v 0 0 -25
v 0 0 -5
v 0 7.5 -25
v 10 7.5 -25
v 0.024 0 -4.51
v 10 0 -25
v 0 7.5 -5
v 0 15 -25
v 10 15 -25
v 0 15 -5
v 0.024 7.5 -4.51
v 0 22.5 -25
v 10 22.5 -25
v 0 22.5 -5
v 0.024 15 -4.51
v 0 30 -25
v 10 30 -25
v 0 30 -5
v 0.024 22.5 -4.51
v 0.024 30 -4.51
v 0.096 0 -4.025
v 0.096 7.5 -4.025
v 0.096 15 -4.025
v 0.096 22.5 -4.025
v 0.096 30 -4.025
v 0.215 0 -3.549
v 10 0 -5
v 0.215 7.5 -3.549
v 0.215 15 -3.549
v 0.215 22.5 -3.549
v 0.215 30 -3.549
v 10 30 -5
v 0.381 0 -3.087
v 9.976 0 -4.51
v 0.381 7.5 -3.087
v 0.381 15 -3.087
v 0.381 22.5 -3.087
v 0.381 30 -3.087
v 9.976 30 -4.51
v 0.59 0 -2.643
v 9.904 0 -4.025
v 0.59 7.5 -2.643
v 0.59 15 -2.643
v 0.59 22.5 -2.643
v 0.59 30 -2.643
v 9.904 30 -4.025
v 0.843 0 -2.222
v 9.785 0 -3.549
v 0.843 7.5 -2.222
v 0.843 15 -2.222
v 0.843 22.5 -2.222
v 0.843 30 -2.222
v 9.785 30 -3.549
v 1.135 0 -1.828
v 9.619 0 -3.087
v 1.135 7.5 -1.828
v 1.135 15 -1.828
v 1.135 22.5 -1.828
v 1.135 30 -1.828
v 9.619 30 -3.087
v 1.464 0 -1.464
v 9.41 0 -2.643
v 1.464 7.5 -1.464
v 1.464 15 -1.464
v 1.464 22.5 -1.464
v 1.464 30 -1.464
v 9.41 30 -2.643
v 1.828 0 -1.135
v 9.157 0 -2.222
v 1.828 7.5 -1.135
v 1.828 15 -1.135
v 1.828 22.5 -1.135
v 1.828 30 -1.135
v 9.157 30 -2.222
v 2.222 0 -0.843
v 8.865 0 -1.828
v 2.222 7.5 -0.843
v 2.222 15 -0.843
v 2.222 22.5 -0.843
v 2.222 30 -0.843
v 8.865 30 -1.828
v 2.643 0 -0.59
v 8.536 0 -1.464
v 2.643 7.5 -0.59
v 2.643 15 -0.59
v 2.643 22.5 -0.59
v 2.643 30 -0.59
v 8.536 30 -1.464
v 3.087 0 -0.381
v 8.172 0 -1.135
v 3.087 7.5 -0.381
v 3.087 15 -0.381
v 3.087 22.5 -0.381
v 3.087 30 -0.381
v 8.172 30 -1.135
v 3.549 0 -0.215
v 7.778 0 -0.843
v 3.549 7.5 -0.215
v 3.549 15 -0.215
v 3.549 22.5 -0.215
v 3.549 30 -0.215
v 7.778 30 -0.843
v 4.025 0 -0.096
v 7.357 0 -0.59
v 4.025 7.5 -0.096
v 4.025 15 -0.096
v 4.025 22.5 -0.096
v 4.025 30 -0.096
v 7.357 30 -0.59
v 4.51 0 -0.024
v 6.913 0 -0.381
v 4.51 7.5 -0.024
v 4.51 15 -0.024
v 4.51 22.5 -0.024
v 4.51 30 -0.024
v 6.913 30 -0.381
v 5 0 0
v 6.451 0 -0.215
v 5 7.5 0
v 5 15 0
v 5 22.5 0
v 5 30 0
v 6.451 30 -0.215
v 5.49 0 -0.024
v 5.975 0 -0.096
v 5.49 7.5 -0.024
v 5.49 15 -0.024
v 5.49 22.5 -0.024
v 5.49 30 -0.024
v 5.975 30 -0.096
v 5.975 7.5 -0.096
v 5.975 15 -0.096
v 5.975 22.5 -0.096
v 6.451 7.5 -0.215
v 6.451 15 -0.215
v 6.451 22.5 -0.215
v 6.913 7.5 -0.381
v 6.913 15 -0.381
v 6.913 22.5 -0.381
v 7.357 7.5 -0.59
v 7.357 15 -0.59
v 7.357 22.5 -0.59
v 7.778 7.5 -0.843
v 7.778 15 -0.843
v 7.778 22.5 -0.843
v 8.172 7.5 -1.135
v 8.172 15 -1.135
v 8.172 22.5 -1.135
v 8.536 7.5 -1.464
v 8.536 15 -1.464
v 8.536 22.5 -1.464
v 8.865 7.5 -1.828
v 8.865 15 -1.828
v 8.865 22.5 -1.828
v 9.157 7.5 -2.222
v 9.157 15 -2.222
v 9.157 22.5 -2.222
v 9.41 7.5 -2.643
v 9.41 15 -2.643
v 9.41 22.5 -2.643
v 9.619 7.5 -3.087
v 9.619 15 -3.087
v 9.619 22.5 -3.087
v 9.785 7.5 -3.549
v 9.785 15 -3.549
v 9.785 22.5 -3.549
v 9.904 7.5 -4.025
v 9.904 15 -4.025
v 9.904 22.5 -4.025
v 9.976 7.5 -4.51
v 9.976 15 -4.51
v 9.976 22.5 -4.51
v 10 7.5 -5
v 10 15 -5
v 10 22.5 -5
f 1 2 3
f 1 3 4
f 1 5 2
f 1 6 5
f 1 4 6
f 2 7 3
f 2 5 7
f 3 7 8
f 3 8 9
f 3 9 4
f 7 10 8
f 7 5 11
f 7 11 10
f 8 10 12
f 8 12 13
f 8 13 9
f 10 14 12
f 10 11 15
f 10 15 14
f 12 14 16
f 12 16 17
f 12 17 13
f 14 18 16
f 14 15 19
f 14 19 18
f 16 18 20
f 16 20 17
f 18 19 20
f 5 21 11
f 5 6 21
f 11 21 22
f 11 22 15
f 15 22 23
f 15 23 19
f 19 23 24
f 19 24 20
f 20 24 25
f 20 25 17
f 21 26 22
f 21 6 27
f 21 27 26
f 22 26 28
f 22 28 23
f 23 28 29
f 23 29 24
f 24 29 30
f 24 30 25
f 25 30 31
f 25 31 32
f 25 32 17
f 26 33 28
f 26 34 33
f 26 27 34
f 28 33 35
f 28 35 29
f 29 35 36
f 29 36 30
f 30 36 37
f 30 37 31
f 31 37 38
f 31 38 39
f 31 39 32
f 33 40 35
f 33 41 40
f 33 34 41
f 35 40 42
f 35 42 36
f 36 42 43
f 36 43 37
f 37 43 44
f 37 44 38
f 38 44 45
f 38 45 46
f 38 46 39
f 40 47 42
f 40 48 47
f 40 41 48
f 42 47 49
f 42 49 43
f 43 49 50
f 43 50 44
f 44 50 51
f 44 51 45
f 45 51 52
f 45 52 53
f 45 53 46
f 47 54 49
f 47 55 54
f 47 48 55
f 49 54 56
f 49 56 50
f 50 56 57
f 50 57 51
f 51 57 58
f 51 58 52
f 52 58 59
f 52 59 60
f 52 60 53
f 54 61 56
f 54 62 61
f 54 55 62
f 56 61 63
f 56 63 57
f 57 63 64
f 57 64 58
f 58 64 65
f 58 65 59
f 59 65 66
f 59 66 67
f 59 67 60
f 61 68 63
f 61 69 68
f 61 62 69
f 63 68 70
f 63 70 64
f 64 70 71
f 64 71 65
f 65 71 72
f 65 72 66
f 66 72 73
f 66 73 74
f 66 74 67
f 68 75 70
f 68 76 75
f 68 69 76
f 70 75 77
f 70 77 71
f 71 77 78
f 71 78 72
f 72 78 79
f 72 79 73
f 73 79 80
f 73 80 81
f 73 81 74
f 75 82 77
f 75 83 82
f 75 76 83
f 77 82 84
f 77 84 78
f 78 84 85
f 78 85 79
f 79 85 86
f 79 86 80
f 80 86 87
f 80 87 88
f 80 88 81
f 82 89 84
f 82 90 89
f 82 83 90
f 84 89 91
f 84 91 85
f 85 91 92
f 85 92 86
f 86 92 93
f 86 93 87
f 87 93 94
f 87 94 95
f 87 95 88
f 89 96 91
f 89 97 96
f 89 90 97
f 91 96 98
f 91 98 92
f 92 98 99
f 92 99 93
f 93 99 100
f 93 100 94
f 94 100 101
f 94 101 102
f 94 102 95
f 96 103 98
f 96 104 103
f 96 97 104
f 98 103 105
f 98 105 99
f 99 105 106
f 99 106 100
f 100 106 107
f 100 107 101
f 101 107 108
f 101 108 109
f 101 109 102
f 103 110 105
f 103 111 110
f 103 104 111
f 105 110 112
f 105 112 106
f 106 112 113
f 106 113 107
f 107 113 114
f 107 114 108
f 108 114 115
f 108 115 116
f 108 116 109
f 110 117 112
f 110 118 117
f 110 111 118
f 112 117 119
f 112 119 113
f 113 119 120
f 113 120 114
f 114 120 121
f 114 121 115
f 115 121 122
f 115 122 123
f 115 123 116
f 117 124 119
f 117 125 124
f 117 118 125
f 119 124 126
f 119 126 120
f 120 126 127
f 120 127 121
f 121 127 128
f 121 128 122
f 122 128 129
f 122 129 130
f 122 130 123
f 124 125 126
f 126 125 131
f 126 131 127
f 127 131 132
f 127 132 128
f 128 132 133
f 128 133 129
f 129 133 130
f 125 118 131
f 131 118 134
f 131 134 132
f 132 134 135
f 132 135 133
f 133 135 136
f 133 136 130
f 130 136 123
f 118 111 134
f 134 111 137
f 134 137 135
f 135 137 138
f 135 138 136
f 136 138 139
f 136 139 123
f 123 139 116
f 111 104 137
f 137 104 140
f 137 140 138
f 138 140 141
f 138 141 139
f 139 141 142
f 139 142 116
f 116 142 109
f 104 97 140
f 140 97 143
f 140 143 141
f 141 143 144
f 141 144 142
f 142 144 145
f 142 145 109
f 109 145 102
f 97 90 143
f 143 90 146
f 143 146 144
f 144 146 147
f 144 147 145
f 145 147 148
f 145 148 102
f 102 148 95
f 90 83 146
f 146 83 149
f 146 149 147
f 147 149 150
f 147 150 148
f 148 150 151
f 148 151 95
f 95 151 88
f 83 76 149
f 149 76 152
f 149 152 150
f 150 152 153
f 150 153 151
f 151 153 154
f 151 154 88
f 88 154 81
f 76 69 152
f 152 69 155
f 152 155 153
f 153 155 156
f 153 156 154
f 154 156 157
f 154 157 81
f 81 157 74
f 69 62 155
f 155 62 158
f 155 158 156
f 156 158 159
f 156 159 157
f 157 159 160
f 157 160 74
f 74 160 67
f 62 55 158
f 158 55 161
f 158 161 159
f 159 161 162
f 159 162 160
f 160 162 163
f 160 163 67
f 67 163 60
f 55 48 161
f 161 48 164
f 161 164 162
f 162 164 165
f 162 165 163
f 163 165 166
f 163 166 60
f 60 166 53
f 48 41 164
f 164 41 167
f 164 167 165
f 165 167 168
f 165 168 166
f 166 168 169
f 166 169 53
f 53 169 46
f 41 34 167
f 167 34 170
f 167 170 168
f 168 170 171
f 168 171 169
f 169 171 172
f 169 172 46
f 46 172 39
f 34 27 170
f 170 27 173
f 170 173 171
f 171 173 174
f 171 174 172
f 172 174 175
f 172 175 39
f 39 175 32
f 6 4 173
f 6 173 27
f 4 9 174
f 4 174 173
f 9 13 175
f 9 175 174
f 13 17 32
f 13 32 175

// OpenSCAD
// Start: lazy_union
default_5_default_5();
// End: lazy_union

// Modules.

// 'PartMaterial undef-default - default 5.0'
module default_5_default_5() {
  // 'None : _combine_solids_and_holes'
  union() {
    // 'default : _combine_solids_and_holes'
    union() {
      // 'cage'
      %multmatrix(m=[[1.0, 0.0, 0.0, 0.0], [0.0, 0.0, 1.0, 0.0], [-0.0, -1.0, -0.0, -0.0], [0.0, 0.0, 0.0, 1.0]]) {
        // 'cage'
        color(c=[0.0, 1.0, 0.35, 0.4]) {
          // 'cage : _combine_solids_and_holes'
          union() {
            // 'cage'
            cube(size=[10.0, 25.0, 30.0]);
          }
        }
      }
      // 'box_cylinder'
      multmatrix(m=[[-1.0, 0.0, 0.0, 5.0], [0.0, 0.0, 1.0, 0.0], [0.0, 1.0, 0.0, -25.0], [0.0, 0.0, 0.0, 1.0]]) {
        // 'box_cylinder : _combine_solids_and_holes'
        union() {
          // 'box_cylinder'
          linear_extrude(height=30.0, twist=0.0, slices=4, scale=[1.0, 1.0], $fn=32) {
            polygon(points=[[0.0, 0.0], [-5.0, 0.0], [-5.0, 20.0], [-4.975923633360984, 20.490085701647804], [-4.903926402016152, 20.97545161008064], [-4.784701678661044, 21.45142338627231], [-4.619397662556432, 21.913417161825446], [-4.409606321741775, 22.356983684129986], [-4.157348061512725, 22.77785116509801], [-3.8650522668136835, 23.171966420818226], [-3.5355339059327373, 23.535533905932734], [-3.1719664208182268, 23.86505226681368], [-2.77785116509801, 24.15734806151272], [-2.3569836841299887, 24.409606321741773], [-1.9134171618254485, 24.61939766255643], [-1.451423386272312, 24.78470167866104], [-0.9754516100806421, 24.903926402016147], [-0.49008570164780324, 24.97592363336098], [-8.040613248383183e-16, 24.999999999999996], [0.49008570164780163, 24.97592363336098], [0.9754516100806405, 24.903926402016147], [1.4514233862723105, 24.78470167866104], [1.913417161825447, 24.61939766255643], [2.356983684129987, 24.409606321741773], [2.7778511650980087, 24.157348061512725], [3.171966420818225, 23.865052266813684], [3.535533905932736, 23.535533905932734], [3.865052266813682, 23.171966420818226], [4.1573480615127245, 22.77785116509801], [4.409606321741774, 22.356983684129986], [4.619397662556432, 21.91341716182545], [4.784701678661043, 21.45142338627231], [4.903926402016151, 20.97545161008064], [4.975923633360984, 20.490085701647804], [5.0, 20.0], [5.0, 0.0]]);
          }
        }
      }
      // 'cylinder'
      %multmatrix(m=[[1.6081226496766366e-16, 1.0, 0.0, 5.0], [0.0, 0.0, 1.0, 0.0], [1.0, -1.6081226496766366e-16, 0.0, -5.0000000000000036], [0.0, 0.0, 0.0, 1.0]]) {
        // 'cylinder'
        color(c=[1.0, 0.0, 0.0, 0.4]) {
          // 'cylinder : _combine_solids_and_holes'
          union() {
            // 'cylinder'
            cylinder(h=30.0, r1=5.0, r2=5.0, center=false, $fn=64);
          }
        }
      }
    }
  }
} // end module default_5_default_5
